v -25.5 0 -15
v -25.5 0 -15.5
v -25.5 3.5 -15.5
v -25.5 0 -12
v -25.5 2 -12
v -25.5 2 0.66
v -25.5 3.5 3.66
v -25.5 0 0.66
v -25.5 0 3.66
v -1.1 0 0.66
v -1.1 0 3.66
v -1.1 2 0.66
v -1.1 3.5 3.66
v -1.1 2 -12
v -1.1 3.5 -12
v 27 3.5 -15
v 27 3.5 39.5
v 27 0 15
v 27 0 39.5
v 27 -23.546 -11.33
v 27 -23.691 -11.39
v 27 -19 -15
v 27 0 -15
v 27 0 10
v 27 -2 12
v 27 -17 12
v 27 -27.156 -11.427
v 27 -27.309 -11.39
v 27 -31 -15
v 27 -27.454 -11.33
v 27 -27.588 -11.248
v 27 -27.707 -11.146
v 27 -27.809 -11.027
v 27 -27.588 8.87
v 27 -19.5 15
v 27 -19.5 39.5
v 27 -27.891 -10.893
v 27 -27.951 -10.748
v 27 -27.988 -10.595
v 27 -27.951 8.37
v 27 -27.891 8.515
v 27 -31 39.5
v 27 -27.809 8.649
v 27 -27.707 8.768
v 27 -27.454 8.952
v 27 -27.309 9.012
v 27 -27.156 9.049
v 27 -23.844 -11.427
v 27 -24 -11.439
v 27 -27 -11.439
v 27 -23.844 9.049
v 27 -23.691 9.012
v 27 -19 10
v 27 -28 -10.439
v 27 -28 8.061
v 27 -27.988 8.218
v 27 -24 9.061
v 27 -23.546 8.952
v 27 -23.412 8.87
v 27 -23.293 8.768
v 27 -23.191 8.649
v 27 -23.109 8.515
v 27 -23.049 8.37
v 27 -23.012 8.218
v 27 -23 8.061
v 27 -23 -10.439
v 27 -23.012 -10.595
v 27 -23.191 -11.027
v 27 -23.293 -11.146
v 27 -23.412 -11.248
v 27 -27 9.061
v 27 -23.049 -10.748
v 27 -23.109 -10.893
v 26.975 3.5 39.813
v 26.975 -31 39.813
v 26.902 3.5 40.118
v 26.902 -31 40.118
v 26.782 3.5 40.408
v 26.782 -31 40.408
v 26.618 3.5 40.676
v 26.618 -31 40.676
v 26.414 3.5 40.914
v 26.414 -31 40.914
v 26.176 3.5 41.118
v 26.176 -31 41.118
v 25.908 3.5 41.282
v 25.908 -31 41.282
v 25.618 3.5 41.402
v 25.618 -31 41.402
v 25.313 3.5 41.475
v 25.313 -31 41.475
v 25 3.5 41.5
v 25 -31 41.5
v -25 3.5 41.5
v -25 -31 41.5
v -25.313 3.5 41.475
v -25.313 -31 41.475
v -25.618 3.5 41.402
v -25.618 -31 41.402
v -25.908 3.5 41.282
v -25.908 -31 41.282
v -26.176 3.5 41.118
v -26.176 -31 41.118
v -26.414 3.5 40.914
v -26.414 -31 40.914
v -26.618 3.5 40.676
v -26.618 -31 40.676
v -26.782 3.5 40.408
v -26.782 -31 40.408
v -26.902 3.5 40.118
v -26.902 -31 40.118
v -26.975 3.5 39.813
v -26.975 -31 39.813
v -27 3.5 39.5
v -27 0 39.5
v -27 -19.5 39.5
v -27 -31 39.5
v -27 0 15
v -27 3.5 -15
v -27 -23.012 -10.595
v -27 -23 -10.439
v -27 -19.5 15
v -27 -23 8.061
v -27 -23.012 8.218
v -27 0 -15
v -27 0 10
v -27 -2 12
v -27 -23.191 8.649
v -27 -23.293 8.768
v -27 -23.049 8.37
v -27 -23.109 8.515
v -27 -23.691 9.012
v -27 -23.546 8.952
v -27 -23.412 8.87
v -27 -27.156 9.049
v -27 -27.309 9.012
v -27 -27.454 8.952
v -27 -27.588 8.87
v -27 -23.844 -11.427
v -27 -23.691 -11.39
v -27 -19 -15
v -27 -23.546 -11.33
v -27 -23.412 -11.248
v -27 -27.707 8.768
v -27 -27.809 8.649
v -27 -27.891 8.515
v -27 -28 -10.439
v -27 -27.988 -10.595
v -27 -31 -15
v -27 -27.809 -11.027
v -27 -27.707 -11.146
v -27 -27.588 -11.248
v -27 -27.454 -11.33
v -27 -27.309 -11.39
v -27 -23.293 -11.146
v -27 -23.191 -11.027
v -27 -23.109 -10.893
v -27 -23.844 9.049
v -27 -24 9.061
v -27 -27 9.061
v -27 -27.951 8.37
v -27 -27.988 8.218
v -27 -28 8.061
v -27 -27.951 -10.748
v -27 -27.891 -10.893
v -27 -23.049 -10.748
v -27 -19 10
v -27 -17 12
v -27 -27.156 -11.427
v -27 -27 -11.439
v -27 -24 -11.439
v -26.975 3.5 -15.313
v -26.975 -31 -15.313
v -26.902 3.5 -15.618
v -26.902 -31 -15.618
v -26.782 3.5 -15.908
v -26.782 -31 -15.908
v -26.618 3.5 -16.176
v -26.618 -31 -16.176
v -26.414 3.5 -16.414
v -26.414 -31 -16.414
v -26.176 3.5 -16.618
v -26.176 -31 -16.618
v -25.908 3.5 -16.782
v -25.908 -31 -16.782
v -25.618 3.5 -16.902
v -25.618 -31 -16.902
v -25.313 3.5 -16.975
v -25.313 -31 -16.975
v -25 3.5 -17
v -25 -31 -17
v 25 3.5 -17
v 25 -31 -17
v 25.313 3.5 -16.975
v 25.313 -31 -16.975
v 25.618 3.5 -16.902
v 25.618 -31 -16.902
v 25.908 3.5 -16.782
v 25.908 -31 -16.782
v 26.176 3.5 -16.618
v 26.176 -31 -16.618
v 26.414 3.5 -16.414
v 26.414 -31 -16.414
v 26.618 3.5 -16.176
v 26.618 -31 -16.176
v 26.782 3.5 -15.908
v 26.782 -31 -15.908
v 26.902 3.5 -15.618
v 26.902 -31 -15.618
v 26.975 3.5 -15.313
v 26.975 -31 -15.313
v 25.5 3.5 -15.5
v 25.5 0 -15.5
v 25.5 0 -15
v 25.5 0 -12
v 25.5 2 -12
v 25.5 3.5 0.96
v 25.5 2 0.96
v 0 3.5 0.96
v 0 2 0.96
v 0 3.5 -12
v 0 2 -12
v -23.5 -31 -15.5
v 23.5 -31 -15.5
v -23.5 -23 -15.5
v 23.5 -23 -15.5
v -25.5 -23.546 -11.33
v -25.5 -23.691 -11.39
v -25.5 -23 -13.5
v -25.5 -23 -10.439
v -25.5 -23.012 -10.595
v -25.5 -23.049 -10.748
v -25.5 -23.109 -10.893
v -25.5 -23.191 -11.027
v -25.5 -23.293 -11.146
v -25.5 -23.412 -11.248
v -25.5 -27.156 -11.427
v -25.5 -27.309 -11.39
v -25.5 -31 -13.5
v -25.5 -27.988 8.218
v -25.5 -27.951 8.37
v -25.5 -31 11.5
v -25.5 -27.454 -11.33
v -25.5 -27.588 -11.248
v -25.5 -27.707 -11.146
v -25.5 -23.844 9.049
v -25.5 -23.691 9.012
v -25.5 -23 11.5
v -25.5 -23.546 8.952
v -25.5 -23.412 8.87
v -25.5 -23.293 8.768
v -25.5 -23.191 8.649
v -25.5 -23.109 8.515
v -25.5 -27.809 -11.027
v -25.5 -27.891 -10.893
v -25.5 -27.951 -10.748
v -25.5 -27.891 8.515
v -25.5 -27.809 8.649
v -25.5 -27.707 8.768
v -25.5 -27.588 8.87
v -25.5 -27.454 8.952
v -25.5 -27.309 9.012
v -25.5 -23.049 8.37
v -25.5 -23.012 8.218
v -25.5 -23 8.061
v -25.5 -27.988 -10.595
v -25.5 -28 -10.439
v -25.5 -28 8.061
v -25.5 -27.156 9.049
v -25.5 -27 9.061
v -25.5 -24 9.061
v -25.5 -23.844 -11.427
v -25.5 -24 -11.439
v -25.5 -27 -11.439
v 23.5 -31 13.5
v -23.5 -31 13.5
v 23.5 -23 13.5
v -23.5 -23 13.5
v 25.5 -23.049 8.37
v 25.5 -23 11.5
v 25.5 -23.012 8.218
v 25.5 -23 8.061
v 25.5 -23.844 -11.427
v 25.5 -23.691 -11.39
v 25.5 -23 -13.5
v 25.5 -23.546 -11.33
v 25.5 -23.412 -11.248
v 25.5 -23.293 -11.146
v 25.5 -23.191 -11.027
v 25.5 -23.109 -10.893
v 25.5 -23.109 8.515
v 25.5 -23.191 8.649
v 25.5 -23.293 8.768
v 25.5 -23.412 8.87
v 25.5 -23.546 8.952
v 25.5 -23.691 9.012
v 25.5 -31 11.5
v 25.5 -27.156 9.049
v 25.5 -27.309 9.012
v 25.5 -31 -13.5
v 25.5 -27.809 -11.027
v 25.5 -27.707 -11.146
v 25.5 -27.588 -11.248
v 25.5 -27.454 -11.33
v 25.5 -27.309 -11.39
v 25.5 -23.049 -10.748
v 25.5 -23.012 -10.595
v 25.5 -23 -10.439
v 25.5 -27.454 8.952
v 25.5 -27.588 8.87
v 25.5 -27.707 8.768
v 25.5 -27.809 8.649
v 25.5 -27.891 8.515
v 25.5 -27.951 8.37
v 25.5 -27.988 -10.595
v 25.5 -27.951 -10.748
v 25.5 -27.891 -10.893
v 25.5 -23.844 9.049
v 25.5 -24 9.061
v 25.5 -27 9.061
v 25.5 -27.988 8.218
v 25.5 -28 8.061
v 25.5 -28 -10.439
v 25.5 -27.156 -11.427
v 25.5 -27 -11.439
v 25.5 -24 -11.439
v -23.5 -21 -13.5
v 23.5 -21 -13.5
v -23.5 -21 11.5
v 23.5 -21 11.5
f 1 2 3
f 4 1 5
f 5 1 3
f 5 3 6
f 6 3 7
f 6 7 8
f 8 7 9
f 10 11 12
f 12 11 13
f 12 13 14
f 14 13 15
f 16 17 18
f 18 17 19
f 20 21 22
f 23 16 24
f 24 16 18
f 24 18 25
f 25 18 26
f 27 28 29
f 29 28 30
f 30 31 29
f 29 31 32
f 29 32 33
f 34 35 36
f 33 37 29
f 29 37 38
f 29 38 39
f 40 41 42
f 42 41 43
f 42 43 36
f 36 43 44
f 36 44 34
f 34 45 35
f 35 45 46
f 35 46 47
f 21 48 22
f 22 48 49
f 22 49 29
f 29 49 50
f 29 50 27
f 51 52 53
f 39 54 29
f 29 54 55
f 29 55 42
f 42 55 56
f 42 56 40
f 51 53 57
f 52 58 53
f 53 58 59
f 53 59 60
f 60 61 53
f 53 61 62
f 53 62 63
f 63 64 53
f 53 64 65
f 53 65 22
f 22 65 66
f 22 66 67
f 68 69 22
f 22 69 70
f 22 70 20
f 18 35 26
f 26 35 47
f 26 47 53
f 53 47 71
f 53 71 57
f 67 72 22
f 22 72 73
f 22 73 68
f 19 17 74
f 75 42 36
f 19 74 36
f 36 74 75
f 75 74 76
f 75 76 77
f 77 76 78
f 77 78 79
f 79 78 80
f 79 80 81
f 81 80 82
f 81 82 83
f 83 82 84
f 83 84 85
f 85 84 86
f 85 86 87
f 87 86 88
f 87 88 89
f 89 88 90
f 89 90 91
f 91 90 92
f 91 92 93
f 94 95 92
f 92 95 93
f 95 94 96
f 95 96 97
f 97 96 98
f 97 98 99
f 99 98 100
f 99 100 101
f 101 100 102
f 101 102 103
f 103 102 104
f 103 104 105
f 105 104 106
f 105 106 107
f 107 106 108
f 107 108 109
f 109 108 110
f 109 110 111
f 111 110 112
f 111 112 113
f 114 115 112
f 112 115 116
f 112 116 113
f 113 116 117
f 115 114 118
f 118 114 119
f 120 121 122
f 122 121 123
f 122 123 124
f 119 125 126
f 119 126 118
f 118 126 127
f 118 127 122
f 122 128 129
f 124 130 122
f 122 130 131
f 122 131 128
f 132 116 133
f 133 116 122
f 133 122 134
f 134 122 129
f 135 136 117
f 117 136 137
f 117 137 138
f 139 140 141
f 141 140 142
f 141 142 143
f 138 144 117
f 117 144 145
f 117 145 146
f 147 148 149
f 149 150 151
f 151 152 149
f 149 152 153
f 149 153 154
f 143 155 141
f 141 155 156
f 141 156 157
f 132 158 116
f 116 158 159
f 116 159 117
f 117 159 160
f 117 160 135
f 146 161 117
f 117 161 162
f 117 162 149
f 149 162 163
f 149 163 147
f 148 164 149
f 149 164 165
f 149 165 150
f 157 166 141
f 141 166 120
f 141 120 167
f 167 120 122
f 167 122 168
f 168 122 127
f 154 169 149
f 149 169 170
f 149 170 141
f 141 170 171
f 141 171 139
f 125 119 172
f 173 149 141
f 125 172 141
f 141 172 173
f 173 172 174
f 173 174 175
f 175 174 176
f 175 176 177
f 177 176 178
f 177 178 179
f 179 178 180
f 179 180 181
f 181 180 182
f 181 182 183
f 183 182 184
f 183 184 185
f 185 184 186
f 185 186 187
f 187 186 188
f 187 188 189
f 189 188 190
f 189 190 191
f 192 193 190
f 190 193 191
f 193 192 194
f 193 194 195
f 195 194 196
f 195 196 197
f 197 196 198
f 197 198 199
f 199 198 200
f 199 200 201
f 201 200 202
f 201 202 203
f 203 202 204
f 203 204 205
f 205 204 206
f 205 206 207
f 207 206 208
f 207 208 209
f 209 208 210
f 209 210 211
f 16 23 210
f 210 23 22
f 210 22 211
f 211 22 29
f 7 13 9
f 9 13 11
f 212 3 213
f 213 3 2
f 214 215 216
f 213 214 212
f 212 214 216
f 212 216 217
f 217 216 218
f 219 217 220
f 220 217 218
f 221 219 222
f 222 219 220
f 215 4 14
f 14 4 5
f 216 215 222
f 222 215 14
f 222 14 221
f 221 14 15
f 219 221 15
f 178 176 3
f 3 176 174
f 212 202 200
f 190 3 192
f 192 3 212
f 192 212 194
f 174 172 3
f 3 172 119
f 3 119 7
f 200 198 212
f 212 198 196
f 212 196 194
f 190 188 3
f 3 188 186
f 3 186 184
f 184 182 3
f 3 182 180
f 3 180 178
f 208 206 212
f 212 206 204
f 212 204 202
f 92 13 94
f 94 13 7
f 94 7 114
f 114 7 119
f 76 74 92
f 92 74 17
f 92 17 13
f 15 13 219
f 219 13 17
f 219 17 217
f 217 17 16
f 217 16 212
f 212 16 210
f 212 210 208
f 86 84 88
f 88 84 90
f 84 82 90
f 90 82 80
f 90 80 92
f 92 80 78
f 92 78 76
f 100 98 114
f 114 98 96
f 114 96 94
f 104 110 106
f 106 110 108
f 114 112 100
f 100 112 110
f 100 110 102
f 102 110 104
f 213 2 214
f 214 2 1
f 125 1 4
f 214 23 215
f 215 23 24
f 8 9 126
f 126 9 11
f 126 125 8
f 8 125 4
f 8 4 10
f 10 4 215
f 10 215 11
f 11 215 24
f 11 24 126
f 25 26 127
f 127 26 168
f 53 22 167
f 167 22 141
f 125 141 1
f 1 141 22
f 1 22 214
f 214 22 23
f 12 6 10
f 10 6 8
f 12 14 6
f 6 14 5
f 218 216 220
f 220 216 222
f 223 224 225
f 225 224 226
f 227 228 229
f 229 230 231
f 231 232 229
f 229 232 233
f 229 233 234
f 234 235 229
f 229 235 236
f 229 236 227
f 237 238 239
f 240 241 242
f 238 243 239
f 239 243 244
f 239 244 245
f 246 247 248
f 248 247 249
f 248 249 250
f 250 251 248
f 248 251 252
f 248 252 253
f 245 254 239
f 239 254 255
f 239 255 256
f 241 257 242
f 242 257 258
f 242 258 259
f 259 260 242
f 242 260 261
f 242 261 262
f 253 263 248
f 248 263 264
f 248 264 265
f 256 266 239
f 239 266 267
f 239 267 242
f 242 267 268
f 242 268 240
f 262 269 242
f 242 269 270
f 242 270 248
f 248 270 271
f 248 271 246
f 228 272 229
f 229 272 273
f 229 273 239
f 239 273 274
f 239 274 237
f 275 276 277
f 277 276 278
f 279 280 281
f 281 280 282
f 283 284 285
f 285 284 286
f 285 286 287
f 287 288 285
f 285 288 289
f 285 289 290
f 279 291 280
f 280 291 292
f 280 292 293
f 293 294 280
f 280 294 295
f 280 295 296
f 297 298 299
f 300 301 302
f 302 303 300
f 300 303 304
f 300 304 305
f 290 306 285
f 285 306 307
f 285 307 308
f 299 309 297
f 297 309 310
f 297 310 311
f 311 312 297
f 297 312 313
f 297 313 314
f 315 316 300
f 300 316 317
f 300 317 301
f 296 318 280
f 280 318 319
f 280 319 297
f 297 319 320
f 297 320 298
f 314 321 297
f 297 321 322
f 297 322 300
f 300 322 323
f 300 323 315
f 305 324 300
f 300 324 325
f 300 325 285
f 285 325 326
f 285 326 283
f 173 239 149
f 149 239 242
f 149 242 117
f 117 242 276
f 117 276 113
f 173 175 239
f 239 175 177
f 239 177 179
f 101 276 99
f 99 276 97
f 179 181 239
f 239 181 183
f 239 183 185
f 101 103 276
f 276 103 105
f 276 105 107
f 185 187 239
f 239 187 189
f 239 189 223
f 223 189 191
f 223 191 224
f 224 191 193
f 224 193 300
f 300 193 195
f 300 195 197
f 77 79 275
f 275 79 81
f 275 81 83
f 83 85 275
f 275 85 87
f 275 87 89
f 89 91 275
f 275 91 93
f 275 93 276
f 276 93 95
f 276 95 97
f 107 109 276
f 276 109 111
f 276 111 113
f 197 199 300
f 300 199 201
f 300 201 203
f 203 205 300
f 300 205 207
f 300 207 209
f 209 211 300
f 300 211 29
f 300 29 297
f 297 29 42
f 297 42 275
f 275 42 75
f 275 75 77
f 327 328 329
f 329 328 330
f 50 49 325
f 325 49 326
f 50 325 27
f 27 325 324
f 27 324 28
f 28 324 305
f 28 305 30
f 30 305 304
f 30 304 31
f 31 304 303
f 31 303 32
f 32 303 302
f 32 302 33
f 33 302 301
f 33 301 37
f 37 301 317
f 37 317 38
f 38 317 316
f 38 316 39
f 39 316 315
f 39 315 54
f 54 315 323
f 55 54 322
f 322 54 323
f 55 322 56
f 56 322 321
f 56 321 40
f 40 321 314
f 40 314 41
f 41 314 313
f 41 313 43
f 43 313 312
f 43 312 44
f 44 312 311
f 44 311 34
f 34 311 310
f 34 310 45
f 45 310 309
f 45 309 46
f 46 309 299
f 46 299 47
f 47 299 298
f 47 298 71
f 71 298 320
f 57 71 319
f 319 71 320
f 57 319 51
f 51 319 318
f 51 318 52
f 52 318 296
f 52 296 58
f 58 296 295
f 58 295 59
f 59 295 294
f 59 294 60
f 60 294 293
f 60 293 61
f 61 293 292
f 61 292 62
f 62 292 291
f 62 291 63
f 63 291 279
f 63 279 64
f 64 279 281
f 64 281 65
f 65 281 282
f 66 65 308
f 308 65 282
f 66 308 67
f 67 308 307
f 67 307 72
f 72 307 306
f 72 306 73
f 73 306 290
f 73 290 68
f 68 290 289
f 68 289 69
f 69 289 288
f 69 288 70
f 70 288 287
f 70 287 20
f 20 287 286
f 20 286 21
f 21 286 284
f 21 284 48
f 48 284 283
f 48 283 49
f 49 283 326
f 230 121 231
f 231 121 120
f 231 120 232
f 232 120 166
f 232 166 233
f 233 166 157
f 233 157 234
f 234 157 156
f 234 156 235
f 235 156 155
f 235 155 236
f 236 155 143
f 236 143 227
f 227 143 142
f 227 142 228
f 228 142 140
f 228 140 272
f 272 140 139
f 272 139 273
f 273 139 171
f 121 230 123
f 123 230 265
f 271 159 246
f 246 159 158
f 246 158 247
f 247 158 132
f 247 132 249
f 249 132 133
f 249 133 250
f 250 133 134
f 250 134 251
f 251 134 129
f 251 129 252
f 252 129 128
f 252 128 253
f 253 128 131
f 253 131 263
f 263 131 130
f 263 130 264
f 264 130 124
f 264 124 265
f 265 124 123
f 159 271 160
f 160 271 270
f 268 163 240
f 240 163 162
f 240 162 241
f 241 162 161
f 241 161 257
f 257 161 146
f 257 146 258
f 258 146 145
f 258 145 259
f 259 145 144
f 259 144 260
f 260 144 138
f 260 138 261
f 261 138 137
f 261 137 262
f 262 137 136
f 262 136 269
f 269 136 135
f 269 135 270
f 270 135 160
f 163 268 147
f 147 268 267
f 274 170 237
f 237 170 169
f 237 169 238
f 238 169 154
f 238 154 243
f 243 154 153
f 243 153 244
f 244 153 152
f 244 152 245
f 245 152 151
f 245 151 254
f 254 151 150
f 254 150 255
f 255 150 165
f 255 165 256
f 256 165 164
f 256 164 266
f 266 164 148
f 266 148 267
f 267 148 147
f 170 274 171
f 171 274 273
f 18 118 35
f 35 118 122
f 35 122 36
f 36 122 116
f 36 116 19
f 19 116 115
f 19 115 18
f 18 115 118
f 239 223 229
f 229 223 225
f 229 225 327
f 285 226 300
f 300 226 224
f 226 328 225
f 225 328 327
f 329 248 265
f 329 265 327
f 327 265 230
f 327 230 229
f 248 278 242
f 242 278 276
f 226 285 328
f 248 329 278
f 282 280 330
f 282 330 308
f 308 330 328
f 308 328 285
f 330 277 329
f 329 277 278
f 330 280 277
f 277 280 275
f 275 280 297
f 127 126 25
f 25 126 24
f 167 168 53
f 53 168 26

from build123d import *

# Parameters (mm, degrees)
BOSS_EXTRUDE4_DEPTH = 21
BOSS_EXTRUDE5_START = 3.5
BOSS_EXTRUDE5_DEPTH = 3.5
SKETCH4_W           = 27
SKETCH4_H           = 19
CUT_EXTRUDE4_DEPTH  = 72.268857154
SKETCH3_5_W         = 24.4
SKETCH3_5_H         = 12.66
BOSS_EXTRUDE6_DEPTH = 2
SKETCH5_W           = 51
SKETCH5_H           = 29
BOSS_EXTRUDE7_DEPTH = 10
CUT_EXTRUDE5_DEPTH  = 75.828136419
CUT_EXTRUDE6_REACH  = 76.828
SKETCH8_W           = 24.5
SKETCH8_H           = 19.5
CHAMFER1_SIZE       = 2


with BuildPart() as part:
    # Sketch3 → Boss-Extrude4 (new body)
    with BuildSketch(Plane(origin=(0, 0, 0), x_dir=(1, 0, 0), z_dir=(0, 1, 0))):
        with BuildLine():
            Line((-27, 15), (-27, -39.5))
            ThreePointArc((-27, -39.5), (-26.414213562, -40.914213562), (-25, -41.5))
            Line((-25, -41.5), (25, -41.5))
            ThreePointArc((25, -41.5), (26.414213562, -40.914213562), (27, -39.5))
            Line((27, -39.5), (27, 15))
            ThreePointArc((27, 15), (26.414213562, 16.414213562), (25, 17))
            Line((25, 17), (-25, 17))
            ThreePointArc((-25, 17), (-26.414213562, 16.414213562), (-27, 15))
        make_face()
    extrude(amount=-BOSS_EXTRUDE4_DEPTH)

    # Sketch3<3> → Boss-Extrude5 (add)
    with BuildSketch(Plane(origin=(0, 0, 0), x_dir=(1, 0, 0), z_dir=(0, 1, 0)).offset(BOSS_EXTRUDE5_START)):
        with BuildLine():
            Line((-27, 15), (-27, -39.5))
            ThreePointArc((-27, -39.5), (-26.414213562, -40.914213562), (-25, -41.5))
            Line((-25, -41.5), (25, -41.5))
            ThreePointArc((25, -41.5), (26.414213562, -40.914213562), (27, -39.5))
            Line((27, -39.5), (27, 15))
            ThreePointArc((27, 15), (26.414213562, 16.414213562), (25, 17))
            Line((25, 17), (-25, 17))
            ThreePointArc((-25, 17), (-26.414213562, 16.414213562), (-27, 15))
        make_face()
        Polygon((0, 12), (-1.1, 12), (-1.1, -3.66), (-25.5, -3.66), (-25.5, 15.5), (25.5, 15.5), (25.5, -0.96), (0, -0.96), align=None, mode=Mode.SUBTRACT)
    extrude(amount=-BOSS_EXTRUDE5_DEPTH)

    # Sketch4 → Cut-Extrude4 (cut, through all)
    with BuildSketch(Plane.ZY.offset(27)):
        with Locations((-1.5, -9.5)):
            Rectangle(SKETCH4_W, SKETCH4_H)
    extrude(amount=-CUT_EXTRUDE4_DEPTH, mode=Mode.SUBTRACT)

    # Sketch3<5> → Boss-Extrude6 (add)
    with BuildSketch(Plane(origin=(0, 0, 0), x_dir=(1, 0, 0), z_dir=(0, 1, 0))):
        with Locations((-13.3, 5.67)):
            Rectangle(SKETCH3_5_W, SKETCH3_5_H)
        Polygon((25.5, 12), (0, 12), (0, -0.96), (25.5, -0.96), (25.5, -0.5), align=None)
    extrude(amount=BOSS_EXTRUDE6_DEPTH)

    # Sketch5 → Boss-Extrude7 (add)
    # profile 1 of 2: a face of its own
    with BuildSketch(Plane.XZ.offset(21)):
        with BuildLine():
            ThreePointArc((25, -17), (26.414213562, -16.414213562), (27, -15))
            Line((27, -15), (27, 39.5))
            ThreePointArc((27, 39.5), (26.414213562, 40.914213562), (25, 41.5))
            Line((25, 41.5), (-25, 41.5))
            ThreePointArc((-25, 41.5), (-26.414213562, 40.914213562), (-27, 39.5))
            Line((-27, 39.5), (-27, -15))
            ThreePointArc((-27, -15), (-26.414213562, -16.414213562), (-25, -17))
            Line((-25, -17), (25, -17))
        make_face()
        with Locations((0, -1)):
            Rectangle(SKETCH5_W, SKETCH5_H, mode=Mode.SUBTRACT)
    # profile 2 of 2: a face of its own
    with BuildSketch(Plane.XZ.offset(21)):
        with BuildLine():
            ThreePointArc((25, -17), (26.414213562, -16.414213562), (27, -15))
            Line((27, -15), (27, 39.5))
            ThreePointArc((27, 39.5), (26.414213562, 40.914213562), (25, 41.5))
            Line((25, 41.5), (-25, 41.5))
            ThreePointArc((-25, 41.5), (-26.414213562, 40.914213562), (-27, 39.5))
            Line((-27, 39.5), (-27, -15))
            ThreePointArc((-27, -15), (-26.414213562, -16.414213562), (-25, -17))
            Line((-25, -17), (25, -17))
        make_face()
        with Locations((0, -1)):
            Rectangle(SKETCH5_W, SKETCH5_H, mode=Mode.SUBTRACT)
    extrude(amount=BOSS_EXTRUDE7_DEPTH)

    # Sketch6 → Cut-Extrude5 (cut, through all)
    with BuildSketch(Plane.ZY.offset(27)):
        with BuildLine():
            Line((-10.438825699, -23), (8.061174301, -23))
            ThreePointArc((8.061174301, -23), (8.768281082, -23.292893219), (9.061174301, -24))
            Line((9.061174301, -24), (9.061174301, -27))
            ThreePointArc((9.061174301, -27), (8.768281082, -27.707106781), (8.061174301, -28))
            Line((8.061174301, -28), (-10.438825699, -28))
            ThreePointArc((-10.438825699, -28), (-11.14593248, -27.707106781), (-11.438825699, -27))
            Line((-11.438825699, -27), (-11.438825699, -24))
            ThreePointArc((-11.438825699, -24), (-11.14593248, -23.292893219), (-10.438825699, -23))
        make_face()
    extrude(amount=-CUT_EXTRUDE5_DEPTH, mode=Mode.SUBTRACT)

    # Sketch8 → Cut-Extrude6 (cut, up to next)
    with BuildSketch(Plane(origin=(27, 0, 0), x_dir=(0, 0, -1), z_dir=(1, 0, 0)), mode=Mode.PRIVATE) as cut_extrude6_sk1:
        with Locations((-27.25, -9.75)):
            Rectangle(SKETCH8_W, SKETCH8_H)
    cut_extrude6_tool1 = extrude(cut_extrude6_sk1.sketch, amount=-CUT_EXTRUDE6_REACH, mode=Mode.PRIVATE) & part.part
    add(cut_extrude6_tool1.solids().sort_by_distance((27, -9.75, 27.25))[0], mode=Mode.SUBTRACT)

    # Chamfer1
    chamfer1_edges = [part.edges().sort_by_distance(p)[0] for p in [
        (25.5, -26, -15.5),
        (-25.5, -21, -1),
        (-25.5, -26, -15.5),
        (0, -21, 13.5),
        (-25.5, -26, 13.5),
        (25.5, -26, 13.5),
        (0, -21, -15.5),
        (25.5, -21, -1),
        (0, 0, 12),
        (0, -19, 12),
    ]]
    chamfer(chamfer1_edges, length=CHAMFER1_SIZE - 0.0001)  # a hair under: the kernel refuses the full size


solid = part.part
